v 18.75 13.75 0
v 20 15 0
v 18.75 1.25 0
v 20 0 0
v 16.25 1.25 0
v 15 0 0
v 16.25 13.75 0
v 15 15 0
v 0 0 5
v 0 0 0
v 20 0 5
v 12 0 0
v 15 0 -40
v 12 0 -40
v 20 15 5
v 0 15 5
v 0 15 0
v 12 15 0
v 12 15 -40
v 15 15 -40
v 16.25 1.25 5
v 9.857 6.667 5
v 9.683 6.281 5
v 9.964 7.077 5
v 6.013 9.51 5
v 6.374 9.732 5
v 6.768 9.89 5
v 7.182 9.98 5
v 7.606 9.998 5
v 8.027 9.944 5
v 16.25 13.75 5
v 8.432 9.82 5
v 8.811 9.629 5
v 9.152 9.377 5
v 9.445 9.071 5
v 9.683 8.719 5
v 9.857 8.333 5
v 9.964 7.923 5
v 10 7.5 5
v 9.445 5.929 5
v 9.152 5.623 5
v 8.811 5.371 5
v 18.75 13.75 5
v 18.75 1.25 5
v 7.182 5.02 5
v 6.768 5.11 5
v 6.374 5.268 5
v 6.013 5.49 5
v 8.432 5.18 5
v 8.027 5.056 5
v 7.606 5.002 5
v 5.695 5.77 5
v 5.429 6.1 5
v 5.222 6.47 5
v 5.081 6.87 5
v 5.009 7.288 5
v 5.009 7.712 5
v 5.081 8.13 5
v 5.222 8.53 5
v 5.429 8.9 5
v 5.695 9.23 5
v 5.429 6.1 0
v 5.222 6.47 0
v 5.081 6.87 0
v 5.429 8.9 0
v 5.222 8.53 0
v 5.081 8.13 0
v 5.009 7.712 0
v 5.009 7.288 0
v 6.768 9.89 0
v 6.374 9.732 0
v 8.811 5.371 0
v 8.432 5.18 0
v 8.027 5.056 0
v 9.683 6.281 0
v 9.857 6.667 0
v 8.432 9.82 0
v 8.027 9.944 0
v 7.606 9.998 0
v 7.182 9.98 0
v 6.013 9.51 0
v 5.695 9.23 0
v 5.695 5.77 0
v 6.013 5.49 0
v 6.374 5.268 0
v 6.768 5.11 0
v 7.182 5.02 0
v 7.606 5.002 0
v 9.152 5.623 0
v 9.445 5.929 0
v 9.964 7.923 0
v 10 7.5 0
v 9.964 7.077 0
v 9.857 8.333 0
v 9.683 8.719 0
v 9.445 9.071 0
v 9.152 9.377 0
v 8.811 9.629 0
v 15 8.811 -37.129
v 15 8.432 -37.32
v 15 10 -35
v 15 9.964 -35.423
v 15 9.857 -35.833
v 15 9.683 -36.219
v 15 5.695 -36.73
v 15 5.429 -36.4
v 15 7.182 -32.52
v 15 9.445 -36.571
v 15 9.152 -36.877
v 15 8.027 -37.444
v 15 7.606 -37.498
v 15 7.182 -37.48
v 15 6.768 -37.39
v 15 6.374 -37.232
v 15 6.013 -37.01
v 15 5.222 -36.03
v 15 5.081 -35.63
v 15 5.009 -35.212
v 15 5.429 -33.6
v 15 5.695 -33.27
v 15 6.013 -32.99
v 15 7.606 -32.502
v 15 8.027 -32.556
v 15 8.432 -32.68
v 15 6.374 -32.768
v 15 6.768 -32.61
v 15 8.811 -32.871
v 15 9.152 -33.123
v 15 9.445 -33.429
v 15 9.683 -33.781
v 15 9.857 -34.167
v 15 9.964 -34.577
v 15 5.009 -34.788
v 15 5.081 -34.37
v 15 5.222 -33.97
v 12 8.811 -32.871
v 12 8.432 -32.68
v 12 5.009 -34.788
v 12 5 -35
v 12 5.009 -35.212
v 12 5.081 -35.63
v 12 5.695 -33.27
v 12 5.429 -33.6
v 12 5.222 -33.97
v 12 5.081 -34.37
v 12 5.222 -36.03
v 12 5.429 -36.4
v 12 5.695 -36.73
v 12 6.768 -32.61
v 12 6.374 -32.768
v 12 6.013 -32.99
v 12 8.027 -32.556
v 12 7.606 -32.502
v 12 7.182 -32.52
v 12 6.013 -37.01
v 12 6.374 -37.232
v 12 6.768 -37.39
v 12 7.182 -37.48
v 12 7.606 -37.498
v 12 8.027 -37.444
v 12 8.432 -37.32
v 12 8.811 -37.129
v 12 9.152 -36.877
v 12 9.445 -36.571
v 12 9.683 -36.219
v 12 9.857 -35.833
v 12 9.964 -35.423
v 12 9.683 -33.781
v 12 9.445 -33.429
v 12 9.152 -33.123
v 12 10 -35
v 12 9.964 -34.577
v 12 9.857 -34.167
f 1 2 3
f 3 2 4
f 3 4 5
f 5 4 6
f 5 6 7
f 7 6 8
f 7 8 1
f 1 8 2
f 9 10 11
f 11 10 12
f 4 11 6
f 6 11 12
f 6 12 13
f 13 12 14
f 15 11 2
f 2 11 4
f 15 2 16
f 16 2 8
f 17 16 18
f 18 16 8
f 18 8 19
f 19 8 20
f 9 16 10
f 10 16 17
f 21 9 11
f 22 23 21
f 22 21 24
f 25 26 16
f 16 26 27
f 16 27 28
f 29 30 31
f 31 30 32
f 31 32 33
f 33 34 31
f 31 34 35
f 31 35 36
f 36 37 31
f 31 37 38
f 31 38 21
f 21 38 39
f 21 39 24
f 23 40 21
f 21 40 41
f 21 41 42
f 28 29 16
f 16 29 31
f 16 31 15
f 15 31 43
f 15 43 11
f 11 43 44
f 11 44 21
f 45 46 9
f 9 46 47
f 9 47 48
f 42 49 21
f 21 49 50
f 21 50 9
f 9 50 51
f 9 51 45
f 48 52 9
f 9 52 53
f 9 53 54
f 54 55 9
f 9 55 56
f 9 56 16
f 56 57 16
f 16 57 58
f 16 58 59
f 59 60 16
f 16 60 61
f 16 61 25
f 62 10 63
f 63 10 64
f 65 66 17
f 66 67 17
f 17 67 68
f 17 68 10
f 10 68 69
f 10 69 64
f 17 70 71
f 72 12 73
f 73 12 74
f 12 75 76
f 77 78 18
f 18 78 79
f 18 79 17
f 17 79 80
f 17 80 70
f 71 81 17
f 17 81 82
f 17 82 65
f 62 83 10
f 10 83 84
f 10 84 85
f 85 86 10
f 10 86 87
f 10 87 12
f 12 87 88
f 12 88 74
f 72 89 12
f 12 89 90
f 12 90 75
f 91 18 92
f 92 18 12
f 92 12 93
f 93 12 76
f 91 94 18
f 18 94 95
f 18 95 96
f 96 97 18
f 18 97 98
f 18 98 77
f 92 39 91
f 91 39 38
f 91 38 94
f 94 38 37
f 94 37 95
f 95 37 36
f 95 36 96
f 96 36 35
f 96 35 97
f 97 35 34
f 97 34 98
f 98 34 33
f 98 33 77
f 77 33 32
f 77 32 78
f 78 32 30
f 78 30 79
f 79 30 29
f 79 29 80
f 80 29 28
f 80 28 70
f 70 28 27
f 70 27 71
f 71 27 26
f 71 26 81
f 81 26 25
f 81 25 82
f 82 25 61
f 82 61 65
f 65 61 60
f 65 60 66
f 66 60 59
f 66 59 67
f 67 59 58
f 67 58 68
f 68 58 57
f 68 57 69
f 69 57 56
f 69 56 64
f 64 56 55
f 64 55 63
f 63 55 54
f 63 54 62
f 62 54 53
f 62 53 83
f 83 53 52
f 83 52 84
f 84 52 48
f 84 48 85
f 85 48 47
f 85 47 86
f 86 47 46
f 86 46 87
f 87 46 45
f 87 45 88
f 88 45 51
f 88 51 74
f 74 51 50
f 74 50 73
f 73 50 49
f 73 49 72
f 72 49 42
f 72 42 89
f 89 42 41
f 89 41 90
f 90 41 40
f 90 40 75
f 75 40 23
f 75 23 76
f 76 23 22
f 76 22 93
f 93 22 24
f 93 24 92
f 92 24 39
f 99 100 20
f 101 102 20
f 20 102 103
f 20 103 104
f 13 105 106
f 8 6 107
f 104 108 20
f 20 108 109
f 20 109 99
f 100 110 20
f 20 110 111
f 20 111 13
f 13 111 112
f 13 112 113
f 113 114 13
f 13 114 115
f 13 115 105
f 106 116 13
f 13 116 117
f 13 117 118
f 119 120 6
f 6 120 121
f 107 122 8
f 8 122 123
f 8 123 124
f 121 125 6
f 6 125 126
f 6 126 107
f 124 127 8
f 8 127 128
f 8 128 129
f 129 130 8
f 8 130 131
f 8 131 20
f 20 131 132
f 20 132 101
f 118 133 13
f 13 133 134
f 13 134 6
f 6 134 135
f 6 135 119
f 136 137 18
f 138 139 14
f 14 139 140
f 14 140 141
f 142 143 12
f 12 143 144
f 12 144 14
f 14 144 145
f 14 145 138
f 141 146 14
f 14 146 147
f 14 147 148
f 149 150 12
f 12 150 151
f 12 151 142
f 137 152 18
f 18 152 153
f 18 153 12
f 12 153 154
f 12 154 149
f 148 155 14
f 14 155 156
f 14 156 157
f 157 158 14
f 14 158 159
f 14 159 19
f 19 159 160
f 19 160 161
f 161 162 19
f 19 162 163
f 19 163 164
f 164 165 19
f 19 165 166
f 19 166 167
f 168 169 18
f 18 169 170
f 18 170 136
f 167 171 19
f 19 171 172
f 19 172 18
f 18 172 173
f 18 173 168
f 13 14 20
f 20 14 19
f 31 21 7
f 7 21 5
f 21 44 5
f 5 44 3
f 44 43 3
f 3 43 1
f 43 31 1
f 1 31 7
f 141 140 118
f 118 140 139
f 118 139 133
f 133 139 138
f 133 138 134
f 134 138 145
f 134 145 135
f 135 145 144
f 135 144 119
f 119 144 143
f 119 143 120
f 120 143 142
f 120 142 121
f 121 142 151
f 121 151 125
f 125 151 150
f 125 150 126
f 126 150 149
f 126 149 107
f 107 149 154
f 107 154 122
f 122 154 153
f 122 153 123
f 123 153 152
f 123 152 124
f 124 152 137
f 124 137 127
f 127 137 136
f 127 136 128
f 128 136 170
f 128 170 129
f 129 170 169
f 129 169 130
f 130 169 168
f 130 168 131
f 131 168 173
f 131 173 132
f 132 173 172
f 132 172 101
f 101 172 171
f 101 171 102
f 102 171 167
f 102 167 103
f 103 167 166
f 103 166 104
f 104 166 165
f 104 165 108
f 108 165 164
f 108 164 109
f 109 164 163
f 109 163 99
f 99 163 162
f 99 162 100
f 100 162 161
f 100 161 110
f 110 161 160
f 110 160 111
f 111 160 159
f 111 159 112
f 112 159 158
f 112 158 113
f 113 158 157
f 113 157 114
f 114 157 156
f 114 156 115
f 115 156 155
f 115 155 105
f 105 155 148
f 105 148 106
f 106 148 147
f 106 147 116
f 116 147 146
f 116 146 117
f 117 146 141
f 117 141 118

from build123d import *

# Parameters (mm, degrees)
SKETCH1_W           = 20
SKETCH1_H           = 15
BOSS_EXTRUDE1_DEPTH = 5
SKETCH2_R           = 2.5
CUT_EXTRUDE1_DEPTH  = 5
SKETCH3_W           = 3
SKETCH3_H           = 15
BOSS_EXTRUDE2_DEPTH = 40
SKETCH5_W           = 2.5
SKETCH5_H           = 12.5
CUT_EXTRUDE3_DEPTH  = 6
SKETCH4_R           = 2.5
CUT_EXTRUDE4_DEPTH  = 10


with BuildPart() as part:
    # Sketch1 → Boss-Extrude1 (new body)
    with BuildSketch(Plane.XY):
        with Locations((10, 7.5)):
            Rectangle(SKETCH1_W, SKETCH1_H)
    extrude(amount=BOSS_EXTRUDE1_DEPTH)

    # Sketch2 → Cut-Extrude1 (cut)
    with BuildSketch(Plane.XY.offset(5)):
        with Locations((7.5, 7.5)):
            Circle(SKETCH2_R)
    extrude(amount=-CUT_EXTRUDE1_DEPTH, mode=Mode.SUBTRACT)

    # Sketch3 → Boss-Extrude2 (add)
    with BuildSketch(Plane(origin=(0, 0, 0), x_dir=(-1, 0, 0), z_dir=(0, 0, -1))):
        with Locations((-13.5, 7.5)):
            Rectangle(SKETCH3_W, SKETCH3_H)
    extrude(amount=BOSS_EXTRUDE2_DEPTH)

    # Sketch5 → Cut-Extrude3 (cut, through all)
    with BuildSketch(Plane(origin=(0, 0, 0), x_dir=(-1, 0, 0), z_dir=(0, 0, -1))):
        with Locations((-17.5, 7.5)):
            Rectangle(SKETCH5_W, SKETCH5_H)
    extrude(amount=-CUT_EXTRUDE3_DEPTH, mode=Mode.SUBTRACT)

    # Sketch4 → Cut-Extrude4 (cut)
    with BuildSketch(Plane(origin=(15, 0, 0), x_dir=(0, 0, -1), z_dir=(1, 0, 0))):
        with Locations((35, 7.5)):
            Circle(SKETCH4_R)
    extrude(amount=-CUT_EXTRUDE4_DEPTH, mode=Mode.SUBTRACT)


solid = part.part
